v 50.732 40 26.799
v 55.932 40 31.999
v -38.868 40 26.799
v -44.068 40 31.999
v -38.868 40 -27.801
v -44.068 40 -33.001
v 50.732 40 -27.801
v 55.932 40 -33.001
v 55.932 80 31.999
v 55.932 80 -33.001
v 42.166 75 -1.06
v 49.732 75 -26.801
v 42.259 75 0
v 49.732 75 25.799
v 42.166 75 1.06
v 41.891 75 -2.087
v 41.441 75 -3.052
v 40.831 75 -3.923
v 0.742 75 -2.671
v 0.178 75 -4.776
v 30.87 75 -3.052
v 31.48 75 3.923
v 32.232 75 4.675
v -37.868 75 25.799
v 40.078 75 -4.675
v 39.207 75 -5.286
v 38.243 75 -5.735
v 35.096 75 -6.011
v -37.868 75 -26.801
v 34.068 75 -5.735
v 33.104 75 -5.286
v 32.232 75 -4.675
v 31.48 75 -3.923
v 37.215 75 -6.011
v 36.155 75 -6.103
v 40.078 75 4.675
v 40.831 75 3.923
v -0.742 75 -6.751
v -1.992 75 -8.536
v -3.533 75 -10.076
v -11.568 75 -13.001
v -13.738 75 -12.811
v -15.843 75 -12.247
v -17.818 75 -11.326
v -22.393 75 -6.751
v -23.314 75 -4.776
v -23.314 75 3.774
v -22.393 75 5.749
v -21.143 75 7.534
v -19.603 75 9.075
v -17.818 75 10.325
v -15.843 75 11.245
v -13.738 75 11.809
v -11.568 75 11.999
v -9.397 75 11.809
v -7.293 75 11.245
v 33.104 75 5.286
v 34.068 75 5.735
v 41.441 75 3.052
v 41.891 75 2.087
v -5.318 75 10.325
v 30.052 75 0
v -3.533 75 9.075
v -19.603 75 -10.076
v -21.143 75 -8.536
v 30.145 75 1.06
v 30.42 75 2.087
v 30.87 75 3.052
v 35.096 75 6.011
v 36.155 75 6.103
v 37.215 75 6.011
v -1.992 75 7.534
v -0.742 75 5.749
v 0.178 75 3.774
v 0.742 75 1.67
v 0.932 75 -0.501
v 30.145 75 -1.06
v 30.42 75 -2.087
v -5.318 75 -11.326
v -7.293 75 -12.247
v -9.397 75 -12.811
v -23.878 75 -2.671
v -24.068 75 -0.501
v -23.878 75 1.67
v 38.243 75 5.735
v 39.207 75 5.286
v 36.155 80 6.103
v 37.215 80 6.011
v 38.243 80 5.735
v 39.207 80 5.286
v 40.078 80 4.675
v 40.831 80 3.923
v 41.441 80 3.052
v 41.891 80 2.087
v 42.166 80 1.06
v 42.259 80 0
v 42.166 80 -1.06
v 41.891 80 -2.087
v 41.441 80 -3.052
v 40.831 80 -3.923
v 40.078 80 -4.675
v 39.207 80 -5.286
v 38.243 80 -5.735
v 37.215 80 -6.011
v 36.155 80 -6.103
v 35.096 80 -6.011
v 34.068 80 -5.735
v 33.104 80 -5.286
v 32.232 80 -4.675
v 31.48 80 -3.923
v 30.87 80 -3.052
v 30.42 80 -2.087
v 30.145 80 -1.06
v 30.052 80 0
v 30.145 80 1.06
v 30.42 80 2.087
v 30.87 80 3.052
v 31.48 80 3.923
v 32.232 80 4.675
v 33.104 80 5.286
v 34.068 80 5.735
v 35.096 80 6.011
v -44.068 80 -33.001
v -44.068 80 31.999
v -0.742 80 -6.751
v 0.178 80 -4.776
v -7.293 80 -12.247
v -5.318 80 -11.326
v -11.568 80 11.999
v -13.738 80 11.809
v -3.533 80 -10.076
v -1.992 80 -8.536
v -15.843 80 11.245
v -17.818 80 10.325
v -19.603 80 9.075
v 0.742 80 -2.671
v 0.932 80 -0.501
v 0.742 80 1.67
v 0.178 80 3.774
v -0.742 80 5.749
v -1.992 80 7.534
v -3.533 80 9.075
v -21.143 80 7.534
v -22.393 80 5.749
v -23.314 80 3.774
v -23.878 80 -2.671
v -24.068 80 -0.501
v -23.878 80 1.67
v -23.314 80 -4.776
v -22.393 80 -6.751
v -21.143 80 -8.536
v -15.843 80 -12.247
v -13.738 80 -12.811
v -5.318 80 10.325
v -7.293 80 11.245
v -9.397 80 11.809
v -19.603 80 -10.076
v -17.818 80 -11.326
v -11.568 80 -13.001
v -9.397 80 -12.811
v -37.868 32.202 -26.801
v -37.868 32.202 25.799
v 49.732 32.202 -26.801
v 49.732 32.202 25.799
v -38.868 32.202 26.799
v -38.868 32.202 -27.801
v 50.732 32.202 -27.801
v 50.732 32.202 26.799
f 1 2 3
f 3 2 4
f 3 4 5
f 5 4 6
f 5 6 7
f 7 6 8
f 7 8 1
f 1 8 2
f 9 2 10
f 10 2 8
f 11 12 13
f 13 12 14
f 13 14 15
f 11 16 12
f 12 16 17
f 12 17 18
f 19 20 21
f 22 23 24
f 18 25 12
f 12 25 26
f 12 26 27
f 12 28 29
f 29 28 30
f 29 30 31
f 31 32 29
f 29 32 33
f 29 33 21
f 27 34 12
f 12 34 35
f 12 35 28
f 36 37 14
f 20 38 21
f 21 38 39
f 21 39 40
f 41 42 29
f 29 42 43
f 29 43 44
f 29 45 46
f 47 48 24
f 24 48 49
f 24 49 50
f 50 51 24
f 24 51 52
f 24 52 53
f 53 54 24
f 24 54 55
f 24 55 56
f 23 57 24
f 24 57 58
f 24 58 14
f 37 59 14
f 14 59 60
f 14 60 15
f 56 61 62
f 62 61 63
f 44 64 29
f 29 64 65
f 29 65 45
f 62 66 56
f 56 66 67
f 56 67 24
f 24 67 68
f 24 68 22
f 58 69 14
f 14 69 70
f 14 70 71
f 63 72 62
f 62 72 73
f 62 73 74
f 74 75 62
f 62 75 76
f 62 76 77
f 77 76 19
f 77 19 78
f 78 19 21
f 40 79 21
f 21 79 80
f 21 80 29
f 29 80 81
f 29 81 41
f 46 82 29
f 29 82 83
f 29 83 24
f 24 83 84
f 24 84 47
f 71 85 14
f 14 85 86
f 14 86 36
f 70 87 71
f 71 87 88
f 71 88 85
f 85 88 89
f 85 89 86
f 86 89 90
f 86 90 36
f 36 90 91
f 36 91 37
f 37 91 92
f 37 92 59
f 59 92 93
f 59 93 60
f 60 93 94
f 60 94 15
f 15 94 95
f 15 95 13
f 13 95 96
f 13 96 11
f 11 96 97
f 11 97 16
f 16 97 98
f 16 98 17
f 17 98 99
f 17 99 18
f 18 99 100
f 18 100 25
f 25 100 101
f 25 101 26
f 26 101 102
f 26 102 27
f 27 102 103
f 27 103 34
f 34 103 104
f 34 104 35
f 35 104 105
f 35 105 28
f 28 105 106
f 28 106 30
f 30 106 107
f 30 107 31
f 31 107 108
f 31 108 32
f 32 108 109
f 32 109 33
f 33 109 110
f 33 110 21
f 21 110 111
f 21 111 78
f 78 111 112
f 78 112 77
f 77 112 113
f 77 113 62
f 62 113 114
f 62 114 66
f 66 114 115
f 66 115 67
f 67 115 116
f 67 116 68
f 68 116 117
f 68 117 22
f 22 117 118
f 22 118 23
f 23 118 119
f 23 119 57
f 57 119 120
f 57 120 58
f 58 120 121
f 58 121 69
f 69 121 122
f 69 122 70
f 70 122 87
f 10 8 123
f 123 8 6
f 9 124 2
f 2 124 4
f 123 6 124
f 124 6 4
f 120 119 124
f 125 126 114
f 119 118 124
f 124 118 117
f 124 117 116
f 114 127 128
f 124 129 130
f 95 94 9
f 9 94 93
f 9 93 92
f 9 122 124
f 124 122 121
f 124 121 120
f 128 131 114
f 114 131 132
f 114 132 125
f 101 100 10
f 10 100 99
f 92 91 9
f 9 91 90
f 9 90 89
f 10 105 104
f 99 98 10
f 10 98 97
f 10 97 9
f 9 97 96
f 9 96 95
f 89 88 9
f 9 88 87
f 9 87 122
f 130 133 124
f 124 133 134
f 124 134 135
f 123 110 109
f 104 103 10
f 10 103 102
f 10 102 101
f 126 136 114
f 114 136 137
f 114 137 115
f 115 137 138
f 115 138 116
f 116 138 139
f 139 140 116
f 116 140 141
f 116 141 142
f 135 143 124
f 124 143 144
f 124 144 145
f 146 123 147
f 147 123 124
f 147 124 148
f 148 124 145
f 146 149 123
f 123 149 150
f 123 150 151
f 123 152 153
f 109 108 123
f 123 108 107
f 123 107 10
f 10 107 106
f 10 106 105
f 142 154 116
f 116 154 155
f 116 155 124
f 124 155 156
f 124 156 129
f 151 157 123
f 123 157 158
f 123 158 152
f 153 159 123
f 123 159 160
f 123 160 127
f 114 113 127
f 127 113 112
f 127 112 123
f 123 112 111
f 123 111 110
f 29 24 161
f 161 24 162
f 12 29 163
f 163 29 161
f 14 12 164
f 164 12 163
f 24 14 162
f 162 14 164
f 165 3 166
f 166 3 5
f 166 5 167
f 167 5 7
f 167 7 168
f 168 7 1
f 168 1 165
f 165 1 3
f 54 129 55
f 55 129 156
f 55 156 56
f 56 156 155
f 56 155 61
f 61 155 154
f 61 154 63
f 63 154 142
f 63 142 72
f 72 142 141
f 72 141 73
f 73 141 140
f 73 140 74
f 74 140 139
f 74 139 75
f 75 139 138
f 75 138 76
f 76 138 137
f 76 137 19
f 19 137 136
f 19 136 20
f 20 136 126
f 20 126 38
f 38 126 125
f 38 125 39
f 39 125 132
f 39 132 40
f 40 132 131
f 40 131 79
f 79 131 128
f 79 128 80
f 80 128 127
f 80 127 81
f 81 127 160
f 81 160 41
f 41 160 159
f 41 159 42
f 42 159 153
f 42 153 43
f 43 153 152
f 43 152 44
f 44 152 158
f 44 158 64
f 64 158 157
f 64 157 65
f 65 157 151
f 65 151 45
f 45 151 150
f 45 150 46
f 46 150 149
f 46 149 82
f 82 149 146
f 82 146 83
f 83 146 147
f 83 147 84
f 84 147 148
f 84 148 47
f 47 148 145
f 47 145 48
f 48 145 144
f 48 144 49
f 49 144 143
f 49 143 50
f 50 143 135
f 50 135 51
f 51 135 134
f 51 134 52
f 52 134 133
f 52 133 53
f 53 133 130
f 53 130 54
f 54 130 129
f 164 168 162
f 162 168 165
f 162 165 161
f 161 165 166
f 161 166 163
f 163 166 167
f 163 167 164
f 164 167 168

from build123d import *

# Parameters (mm, degrees)
STOCK_PART1_1_START         = 40
STOCK_PART1_1_OUTLINE_W     = 90
STOCK_PART1_1_OUTLINE_H     = 55
STOCK_PART1_1_DEPTH         = 40
STOCK_PART1_1_START_2       = 75
STOCK_PART1_1_2_OUTLINE_W   = 90
STOCK_PART1_1_2_OUTLINE_H   = 55
STOCK_PART1_1_2_OUTLINE_R   = 6.10322586
STOCK_PART1_1_2_OUTLINE_R_2 = 17.5
STOCK_PART1_1_2_DEPTH       = 5
SKETCH1_W                   = 5
SKETCH1_H                   = 8.27683309
SKETCH1_W_2                 = 4.100738493
SKETCH1_H_2                 = 4.176305195
SKETCH1_W_3                 = 4.702811088
SKETCH1_H_3                 = 4.424974218
SKETCH1_W_4                 = 6.384187924
SKETCH1_H_4                 = 4.971555085
BOSS_EXTRUDE2_DEPTH         = 40
SKETCH2_W                   = 90
SKETCH2_H                   = 55
SKETCH2_W_2                 = 87.6
SKETCH2_H_2                 = 52.6
EXTRUDE_THIN1_DEPTH         = 35
SKETCH3_W                   = 89.6
SKETCH3_H                   = 54.6
SKETCH3_W_2                 = 87.6
SKETCH3_H_2                 = 52.6
EXTRUDE_THIN2_DEPTH         = 35
SKETCH4_R                   = 23.5
SKETCH4_R_2                 = 12.5
EXTRUDE_THIN3_DEPTH         = 5
SKETCH5_W                   = 54.6
SKETCH5_H                   = 27.201852287
CUT_EXTRUDE1_DEPTH          = 115


# Read off the part's stored shape, not the designer's step: Stock-Part1-1
with BuildPart() as part:
    # Stock-Part1-1 outline → Stock-Part1-1 (new body)
    with BuildSketch(Plane(origin=(0, 0, 0), x_dir=(1, 0, 0), z_dir=(0, 1, 0)).offset(STOCK_PART1_1_START)):
        with BuildLine():
            Line((55.93220339, -29.999229584), (55.93220339, 31.000770416))
            ThreePointArc((55.93220339, 31.000770416), (52.517989827, 29.586556854), (53.93220339, 33.000770416))
            Line((53.93220339, 33.000770416), (-42.06779661, 33.000770416))
            ThreePointArc((-42.06779661, 33.000770416), (-40.653583048, 29.586556854), (-44.06779661, 31.000770416))
            Line((-44.06779661, 31.000770416), (-44.06779661, -29.999229584))
            ThreePointArc((-44.06779661, -29.999229584), (-40.653583048, -28.585016022), (-42.06779661, -31.999229584))
            Line((-42.06779661, -31.999229584), (53.93220339, -31.999229584))
            ThreePointArc((53.93220339, -31.999229584), (52.517989827, -28.585016021), (55.93220339, -29.999229584))
        make_face()
        with Locations((5.93220339, 0.500770416)):
            Rectangle(STOCK_PART1_1_OUTLINE_W, STOCK_PART1_1_OUTLINE_H, mode=Mode.SUBTRACT)
    extrude(amount=STOCK_PART1_1_DEPTH)

    # Stock-Part1-1 2 outline → Stock-Part1-1 2 (add)
    with BuildSketch(Plane(origin=(0, 0, 0), x_dir=(1, 0, 0), z_dir=(0, 1, 0)).offset(STOCK_PART1_1_START_2)):
        with Locations((5.93220339, 0.500770416)):
            Rectangle(STOCK_PART1_1_2_OUTLINE_W, STOCK_PART1_1_2_OUTLINE_H)
        with Locations((36.155377847, 0)):
            Circle(STOCK_PART1_1_2_OUTLINE_R, mode=Mode.SUBTRACT)
        with Locations((-11.56779661, 0.500770416)):
            Circle(STOCK_PART1_1_2_OUTLINE_R_2, mode=Mode.SUBTRACT)
    extrude(amount=STOCK_PART1_1_2_DEPTH)

    # Sketch1 → Boss-Extrude2 (add)
    with BuildSketch(Plane.XZ.offset(-40)):
        with Locations((-41.56779661, -28.862353871)):
            Rectangle(SKETCH1_W, SKETCH1_H)
        with Locations((53.881834144, -30.912617819)):
            Rectangle(SKETCH1_W_2, SKETCH1_H_2)
        with Locations((53.580797846, 29.786742475)):
            Rectangle(SKETCH1_W_3, SKETCH1_H_3)
        with Locations((-40.875702648, 29.513452042)):
            Rectangle(SKETCH1_W_4, SKETCH1_H_4)
    extrude(amount=-BOSS_EXTRUDE2_DEPTH)

    # Sketch2 → Extrude-Thin1 (add)
    with BuildSketch(Plane.XZ.offset(-75)):
        with Locations((5.93220339, -0.500770416)):
            Rectangle(SKETCH2_W, SKETCH2_H)
        with Locations((5.93220339, -0.500770416)):
            Rectangle(SKETCH2_W_2, SKETCH2_H_2, mode=Mode.SUBTRACT)
    extrude(amount=EXTRUDE_THIN1_DEPTH)

    # Sketch3 → Extrude-Thin2 (add)
    with BuildSketch(Plane.XZ.offset(-40)):
        with Locations((5.93220339, -0.500770416)):
            Rectangle(SKETCH3_W, SKETCH3_H)
        with Locations((5.93220339, -0.500770416)):
            Rectangle(SKETCH3_W_2, SKETCH3_H_2, mode=Mode.SUBTRACT)
    extrude(amount=EXTRUDE_THIN2_DEPTH)

    # Sketch4 → Extrude-Thin3 (add)
    with BuildSketch(Plane(origin=(0, 80, 0), x_dir=(1, 0, 0), z_dir=(0, 1, 0))):
        with Locations((-11.56779661, 0.500770416)):
            Circle(SKETCH4_R)
        with Locations((-11.56779661, 0.500770416)):
            Circle(SKETCH4_R_2, mode=Mode.SUBTRACT)
    extrude(amount=-EXTRUDE_THIN3_DEPTH)

    # Sketch5 → Cut-Extrude1 (cut)
    with BuildSketch(Plane.ZY.offset(38.86779661)):
        with Locations((-0.500770416, 18.600926144)):
            Rectangle(SKETCH5_W, SKETCH5_H)
    extrude(amount=-CUT_EXTRUDE1_DEPTH, mode=Mode.SUBTRACT)


solid = part.part
